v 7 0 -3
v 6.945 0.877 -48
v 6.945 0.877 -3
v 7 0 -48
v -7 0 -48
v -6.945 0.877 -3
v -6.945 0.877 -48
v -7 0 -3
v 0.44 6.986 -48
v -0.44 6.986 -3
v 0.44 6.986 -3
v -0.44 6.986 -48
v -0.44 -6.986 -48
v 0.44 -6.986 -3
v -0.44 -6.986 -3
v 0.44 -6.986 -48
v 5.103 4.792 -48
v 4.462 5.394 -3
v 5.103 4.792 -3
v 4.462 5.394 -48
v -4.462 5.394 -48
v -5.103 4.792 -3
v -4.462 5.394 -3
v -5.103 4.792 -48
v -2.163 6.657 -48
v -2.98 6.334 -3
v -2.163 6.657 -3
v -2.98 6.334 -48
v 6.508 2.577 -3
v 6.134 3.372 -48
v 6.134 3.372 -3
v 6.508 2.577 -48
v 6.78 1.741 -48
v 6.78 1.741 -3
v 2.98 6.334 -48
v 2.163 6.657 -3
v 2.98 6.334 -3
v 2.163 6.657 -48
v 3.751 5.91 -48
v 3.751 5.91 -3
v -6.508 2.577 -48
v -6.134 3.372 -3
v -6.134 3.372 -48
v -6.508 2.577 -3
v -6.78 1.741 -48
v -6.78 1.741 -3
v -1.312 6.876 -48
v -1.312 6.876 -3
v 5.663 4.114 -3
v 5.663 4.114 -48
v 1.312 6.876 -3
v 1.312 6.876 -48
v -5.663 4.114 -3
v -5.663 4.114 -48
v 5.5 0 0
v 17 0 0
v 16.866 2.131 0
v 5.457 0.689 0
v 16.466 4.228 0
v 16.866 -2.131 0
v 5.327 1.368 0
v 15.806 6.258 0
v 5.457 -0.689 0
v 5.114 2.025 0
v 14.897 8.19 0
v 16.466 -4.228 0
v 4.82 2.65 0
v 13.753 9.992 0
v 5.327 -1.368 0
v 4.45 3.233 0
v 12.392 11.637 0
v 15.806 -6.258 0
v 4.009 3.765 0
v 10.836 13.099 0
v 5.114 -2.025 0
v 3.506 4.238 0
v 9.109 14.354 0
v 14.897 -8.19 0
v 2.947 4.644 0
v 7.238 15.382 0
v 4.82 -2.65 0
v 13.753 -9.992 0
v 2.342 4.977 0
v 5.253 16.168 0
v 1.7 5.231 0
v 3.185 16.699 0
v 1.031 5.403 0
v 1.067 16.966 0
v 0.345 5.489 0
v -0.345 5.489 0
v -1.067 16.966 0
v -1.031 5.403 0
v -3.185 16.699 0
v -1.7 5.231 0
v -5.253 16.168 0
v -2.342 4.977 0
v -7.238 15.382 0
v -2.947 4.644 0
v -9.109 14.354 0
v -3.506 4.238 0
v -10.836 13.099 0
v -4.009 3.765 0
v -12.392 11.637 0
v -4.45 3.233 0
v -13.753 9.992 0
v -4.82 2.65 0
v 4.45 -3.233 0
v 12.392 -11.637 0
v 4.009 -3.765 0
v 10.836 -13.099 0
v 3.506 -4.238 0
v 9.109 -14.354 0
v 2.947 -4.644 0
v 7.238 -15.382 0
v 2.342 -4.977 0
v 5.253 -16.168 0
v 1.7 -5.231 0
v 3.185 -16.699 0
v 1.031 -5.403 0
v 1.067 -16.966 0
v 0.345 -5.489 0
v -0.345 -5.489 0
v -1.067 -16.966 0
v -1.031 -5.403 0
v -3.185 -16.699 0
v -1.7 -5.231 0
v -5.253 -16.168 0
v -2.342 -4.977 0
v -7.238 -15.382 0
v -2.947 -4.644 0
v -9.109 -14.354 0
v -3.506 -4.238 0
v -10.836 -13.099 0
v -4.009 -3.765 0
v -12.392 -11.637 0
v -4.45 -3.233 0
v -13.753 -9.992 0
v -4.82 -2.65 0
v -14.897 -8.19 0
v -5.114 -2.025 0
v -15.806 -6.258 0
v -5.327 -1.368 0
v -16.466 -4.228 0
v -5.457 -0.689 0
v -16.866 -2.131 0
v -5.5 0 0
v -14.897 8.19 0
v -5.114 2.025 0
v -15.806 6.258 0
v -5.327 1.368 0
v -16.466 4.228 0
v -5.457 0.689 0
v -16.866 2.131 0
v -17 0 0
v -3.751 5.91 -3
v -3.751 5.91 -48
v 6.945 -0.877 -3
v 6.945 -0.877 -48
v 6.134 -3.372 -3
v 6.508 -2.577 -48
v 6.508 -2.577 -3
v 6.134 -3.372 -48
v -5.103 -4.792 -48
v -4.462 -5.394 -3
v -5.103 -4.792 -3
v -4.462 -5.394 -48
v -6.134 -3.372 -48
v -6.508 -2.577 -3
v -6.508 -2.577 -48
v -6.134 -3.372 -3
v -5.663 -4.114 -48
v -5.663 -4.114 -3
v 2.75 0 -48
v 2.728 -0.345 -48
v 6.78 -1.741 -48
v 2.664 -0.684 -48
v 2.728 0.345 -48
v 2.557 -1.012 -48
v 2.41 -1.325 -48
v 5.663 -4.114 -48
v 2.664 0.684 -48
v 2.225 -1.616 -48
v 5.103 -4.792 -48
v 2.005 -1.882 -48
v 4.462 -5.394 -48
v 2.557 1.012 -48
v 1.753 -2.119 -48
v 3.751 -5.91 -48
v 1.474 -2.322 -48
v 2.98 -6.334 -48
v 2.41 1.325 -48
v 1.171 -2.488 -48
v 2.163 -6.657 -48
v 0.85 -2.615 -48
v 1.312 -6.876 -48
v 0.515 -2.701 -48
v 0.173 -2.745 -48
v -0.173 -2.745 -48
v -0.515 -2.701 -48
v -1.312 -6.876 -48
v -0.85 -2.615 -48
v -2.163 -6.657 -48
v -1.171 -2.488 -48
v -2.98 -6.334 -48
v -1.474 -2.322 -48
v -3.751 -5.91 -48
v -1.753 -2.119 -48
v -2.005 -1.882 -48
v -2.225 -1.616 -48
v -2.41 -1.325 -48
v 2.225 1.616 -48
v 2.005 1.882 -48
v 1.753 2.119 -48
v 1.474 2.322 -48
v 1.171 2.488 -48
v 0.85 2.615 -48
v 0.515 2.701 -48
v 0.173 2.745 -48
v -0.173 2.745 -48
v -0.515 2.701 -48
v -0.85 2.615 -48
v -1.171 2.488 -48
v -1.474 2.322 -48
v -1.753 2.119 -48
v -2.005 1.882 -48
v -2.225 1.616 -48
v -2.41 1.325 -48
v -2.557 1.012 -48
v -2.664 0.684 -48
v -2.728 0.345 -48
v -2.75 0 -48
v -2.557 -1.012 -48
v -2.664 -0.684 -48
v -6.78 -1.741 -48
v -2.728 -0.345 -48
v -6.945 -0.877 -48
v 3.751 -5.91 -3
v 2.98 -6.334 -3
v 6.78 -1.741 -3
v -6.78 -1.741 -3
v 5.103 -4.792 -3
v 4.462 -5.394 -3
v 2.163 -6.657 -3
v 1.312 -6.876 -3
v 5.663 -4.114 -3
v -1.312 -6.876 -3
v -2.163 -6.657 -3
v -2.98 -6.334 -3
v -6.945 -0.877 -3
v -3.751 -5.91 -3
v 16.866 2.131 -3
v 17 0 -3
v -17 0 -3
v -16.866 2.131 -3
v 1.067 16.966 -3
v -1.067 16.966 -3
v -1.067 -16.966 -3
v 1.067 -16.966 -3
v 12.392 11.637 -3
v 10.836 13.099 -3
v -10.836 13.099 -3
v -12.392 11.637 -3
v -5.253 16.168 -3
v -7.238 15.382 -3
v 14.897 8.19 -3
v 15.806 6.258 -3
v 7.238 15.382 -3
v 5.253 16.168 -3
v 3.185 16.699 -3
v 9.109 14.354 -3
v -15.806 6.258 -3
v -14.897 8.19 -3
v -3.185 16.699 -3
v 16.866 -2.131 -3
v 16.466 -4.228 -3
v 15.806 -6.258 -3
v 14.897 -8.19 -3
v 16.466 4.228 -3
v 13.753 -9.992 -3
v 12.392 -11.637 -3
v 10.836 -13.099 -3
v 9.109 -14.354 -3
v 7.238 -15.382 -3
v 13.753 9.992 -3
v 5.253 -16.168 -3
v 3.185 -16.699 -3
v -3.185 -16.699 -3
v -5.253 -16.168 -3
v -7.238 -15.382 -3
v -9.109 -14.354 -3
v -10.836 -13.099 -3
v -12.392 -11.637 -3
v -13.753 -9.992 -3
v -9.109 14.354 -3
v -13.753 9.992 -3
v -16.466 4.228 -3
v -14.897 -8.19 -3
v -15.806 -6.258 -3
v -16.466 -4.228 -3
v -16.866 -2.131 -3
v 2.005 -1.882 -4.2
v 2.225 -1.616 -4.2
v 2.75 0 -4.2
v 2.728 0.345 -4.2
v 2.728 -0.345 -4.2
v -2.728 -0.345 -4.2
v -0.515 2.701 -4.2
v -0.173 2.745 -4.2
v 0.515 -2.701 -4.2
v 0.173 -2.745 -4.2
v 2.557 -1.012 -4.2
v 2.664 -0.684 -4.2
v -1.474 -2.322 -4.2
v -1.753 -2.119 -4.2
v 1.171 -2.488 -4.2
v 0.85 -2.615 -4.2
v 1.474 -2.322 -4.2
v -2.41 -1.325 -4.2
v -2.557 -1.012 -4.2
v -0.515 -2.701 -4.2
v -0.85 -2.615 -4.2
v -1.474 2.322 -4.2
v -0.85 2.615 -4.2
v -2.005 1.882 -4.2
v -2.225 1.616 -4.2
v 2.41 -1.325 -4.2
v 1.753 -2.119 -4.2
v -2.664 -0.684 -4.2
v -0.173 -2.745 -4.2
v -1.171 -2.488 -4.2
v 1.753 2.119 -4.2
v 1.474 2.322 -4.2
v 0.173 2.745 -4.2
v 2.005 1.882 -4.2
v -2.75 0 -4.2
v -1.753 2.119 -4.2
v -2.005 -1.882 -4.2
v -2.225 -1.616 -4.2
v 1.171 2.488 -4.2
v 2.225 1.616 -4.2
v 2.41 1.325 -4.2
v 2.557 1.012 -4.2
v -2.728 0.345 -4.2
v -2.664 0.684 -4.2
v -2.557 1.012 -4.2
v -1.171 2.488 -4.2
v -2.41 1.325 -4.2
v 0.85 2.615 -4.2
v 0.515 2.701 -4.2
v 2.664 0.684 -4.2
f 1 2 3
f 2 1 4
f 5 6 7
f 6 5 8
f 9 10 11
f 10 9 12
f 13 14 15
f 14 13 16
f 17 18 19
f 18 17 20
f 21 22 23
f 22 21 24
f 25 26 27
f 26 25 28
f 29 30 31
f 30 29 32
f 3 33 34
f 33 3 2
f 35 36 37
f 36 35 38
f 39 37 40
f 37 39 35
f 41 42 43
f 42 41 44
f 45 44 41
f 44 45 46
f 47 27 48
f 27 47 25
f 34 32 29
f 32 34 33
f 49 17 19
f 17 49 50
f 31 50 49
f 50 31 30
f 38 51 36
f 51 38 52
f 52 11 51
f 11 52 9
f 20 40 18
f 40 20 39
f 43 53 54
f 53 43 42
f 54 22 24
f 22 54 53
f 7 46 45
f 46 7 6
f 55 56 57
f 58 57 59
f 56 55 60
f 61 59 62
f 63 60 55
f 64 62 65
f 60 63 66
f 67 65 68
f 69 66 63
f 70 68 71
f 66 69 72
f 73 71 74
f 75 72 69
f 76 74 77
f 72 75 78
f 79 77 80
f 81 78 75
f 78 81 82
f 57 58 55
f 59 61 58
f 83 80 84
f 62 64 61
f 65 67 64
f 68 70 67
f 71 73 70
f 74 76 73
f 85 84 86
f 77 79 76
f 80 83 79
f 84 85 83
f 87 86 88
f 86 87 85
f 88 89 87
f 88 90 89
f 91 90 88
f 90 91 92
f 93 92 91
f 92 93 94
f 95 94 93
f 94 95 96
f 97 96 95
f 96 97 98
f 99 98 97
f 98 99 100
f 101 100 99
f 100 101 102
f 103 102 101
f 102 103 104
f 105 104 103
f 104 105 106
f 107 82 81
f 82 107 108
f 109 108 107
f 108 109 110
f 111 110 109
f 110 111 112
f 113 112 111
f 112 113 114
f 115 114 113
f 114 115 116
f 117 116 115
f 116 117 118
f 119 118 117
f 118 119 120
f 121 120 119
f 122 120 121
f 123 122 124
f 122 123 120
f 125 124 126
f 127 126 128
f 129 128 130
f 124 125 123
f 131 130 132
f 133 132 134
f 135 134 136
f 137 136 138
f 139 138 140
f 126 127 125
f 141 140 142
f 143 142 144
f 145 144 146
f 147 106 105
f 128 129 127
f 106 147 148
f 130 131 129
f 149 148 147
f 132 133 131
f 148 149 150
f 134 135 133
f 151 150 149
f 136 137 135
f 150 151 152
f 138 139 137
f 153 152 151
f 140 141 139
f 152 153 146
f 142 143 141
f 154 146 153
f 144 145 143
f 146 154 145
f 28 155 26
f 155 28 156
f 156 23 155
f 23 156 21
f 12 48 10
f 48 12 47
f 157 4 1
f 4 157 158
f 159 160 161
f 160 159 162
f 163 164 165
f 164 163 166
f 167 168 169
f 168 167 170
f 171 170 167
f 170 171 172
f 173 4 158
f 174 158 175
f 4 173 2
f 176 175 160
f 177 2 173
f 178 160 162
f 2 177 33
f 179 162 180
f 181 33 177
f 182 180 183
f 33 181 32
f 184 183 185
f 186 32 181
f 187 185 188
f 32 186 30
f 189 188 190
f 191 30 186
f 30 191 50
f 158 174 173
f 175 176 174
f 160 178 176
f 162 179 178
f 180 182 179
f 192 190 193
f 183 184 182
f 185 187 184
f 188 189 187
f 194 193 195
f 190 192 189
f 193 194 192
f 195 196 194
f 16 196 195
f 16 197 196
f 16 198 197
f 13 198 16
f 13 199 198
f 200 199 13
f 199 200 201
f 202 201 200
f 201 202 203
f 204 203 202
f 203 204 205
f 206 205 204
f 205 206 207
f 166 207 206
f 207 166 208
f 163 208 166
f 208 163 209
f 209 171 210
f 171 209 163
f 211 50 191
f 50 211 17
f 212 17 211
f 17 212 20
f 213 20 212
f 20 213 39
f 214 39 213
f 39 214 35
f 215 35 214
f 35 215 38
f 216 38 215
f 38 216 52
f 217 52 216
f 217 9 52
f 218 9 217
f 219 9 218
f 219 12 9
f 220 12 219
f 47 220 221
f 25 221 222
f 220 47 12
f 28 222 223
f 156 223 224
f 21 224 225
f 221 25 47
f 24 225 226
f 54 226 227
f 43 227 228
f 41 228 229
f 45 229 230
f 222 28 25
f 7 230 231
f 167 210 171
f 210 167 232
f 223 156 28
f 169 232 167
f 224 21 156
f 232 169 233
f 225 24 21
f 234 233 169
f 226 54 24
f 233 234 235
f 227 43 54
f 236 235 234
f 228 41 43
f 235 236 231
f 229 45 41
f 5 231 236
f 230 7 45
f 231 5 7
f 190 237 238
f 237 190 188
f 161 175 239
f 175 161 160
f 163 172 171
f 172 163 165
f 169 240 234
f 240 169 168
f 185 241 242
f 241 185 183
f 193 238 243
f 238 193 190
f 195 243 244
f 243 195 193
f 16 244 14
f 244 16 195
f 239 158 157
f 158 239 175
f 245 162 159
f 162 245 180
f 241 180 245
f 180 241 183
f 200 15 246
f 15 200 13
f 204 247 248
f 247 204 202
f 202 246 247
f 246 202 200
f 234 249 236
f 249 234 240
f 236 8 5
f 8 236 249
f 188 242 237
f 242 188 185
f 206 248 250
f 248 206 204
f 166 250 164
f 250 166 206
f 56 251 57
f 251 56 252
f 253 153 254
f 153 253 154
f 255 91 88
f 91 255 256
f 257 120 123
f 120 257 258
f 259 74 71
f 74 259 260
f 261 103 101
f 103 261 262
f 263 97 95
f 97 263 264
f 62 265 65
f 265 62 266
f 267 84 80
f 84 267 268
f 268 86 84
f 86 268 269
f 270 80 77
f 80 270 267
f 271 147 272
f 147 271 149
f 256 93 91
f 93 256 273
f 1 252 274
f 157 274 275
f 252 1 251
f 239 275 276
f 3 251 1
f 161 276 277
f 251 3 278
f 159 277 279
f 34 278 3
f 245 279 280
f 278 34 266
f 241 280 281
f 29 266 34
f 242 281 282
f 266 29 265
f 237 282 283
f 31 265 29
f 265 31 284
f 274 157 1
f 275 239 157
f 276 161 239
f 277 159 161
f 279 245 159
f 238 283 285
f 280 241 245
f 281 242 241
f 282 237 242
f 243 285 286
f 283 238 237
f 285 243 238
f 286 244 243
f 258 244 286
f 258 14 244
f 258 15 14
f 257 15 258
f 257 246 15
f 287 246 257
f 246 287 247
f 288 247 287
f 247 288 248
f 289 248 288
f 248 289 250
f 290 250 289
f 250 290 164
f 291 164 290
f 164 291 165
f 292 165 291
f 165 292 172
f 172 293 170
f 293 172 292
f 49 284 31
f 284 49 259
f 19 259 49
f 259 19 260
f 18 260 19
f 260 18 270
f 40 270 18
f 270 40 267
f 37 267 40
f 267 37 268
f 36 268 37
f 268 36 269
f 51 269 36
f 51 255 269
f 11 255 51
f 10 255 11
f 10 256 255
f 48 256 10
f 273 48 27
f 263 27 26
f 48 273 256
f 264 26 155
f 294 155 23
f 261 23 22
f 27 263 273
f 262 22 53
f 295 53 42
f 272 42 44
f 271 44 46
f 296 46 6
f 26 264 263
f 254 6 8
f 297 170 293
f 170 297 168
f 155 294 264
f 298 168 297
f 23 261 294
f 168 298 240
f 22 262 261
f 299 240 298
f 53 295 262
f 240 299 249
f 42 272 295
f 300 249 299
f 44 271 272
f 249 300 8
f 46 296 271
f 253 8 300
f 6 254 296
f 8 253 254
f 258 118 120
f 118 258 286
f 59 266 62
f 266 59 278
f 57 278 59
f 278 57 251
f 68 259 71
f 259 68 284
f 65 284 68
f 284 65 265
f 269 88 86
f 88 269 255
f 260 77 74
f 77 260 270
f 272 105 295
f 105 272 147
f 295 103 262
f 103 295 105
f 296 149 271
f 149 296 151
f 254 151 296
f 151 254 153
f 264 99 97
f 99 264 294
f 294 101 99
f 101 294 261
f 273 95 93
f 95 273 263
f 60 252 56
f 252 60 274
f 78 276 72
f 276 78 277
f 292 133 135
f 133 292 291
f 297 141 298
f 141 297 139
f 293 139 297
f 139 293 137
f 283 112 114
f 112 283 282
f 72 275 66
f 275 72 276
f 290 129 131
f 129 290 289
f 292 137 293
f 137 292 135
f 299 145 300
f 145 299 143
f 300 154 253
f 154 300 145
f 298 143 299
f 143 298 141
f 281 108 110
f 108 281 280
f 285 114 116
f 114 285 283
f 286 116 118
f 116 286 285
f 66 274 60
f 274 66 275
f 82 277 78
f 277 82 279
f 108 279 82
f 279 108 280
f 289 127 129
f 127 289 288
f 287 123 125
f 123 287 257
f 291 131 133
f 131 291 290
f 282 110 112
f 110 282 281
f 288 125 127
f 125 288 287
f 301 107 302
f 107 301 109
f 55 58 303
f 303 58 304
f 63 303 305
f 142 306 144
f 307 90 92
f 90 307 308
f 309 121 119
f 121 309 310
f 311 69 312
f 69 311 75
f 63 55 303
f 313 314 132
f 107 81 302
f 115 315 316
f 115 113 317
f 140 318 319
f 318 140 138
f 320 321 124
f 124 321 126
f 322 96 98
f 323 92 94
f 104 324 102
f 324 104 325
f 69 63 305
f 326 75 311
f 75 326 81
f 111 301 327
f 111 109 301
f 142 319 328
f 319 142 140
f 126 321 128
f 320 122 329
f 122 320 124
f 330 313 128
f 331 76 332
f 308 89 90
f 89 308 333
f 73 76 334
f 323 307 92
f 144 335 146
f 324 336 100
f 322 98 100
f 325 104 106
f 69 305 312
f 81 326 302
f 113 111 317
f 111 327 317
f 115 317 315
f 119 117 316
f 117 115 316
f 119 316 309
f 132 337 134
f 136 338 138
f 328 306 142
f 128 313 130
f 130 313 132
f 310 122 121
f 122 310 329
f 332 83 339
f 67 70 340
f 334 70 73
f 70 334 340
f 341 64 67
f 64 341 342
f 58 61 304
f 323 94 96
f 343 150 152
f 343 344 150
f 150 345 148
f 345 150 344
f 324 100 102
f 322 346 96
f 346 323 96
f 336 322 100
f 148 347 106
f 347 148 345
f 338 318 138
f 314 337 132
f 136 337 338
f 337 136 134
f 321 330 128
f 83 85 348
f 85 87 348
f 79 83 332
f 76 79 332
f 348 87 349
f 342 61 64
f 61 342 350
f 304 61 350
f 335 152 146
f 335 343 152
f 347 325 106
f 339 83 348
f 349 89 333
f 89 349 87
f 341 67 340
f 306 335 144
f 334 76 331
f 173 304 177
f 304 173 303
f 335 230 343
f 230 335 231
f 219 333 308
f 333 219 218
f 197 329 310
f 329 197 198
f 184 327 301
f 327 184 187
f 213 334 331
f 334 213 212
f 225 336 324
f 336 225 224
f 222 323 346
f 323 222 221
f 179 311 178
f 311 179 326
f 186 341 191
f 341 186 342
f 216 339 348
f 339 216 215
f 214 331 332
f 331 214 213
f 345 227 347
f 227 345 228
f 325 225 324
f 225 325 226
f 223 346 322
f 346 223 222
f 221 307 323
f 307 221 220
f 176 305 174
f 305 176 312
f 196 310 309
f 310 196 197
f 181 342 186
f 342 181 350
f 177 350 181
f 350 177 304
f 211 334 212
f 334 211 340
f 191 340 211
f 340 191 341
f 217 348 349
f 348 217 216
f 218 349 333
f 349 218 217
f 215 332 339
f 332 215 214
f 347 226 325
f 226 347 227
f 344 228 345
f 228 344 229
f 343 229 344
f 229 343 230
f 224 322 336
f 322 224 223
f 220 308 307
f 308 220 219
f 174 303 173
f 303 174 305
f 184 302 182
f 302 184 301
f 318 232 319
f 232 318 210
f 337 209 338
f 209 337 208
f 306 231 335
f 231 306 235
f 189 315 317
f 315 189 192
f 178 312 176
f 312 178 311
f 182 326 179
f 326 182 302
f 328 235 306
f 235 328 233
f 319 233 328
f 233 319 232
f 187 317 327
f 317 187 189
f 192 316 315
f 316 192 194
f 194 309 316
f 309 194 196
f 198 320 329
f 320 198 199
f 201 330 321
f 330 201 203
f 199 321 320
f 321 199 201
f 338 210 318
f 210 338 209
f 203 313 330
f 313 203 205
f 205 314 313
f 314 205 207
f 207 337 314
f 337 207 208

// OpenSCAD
$fn = 50;


difference() {
	union() {
		translate(v = [0, 0, -48.0000000000]) {
			cylinder(h = 48, r = 7.0000000000);
		}
		translate(v = [0, 0, -3.0000000000]) {
			cylinder(h = 3, r = 17.0000000000);
		}
	}
	union() {
		translate(v = [0, 0, 0]) {
			rotate(a = [0, 0, 0]) {
				difference() {
					union() {
						#translate(v = [0, 0, -48.0000000000]) {
							cylinder(h = 48, r = 2.2500000000);
						}
						#translate(v = [0, 0, -4.2000000000]) {
							cylinder(h = 4.2000000000, r1 = 2.7500000000, r2 = 5.5000000000);
						}
						#translate(v = [0, 0, -48.0000000000]) {
							cylinder(h = 48, r = 2.7500000000);
						}
						#translate(v = [0, 0, -48.0000000000]) {
							cylinder(h = 48, r = 2.2500000000);
						}
					}
					union();
				}
			}
		}
	}
}
